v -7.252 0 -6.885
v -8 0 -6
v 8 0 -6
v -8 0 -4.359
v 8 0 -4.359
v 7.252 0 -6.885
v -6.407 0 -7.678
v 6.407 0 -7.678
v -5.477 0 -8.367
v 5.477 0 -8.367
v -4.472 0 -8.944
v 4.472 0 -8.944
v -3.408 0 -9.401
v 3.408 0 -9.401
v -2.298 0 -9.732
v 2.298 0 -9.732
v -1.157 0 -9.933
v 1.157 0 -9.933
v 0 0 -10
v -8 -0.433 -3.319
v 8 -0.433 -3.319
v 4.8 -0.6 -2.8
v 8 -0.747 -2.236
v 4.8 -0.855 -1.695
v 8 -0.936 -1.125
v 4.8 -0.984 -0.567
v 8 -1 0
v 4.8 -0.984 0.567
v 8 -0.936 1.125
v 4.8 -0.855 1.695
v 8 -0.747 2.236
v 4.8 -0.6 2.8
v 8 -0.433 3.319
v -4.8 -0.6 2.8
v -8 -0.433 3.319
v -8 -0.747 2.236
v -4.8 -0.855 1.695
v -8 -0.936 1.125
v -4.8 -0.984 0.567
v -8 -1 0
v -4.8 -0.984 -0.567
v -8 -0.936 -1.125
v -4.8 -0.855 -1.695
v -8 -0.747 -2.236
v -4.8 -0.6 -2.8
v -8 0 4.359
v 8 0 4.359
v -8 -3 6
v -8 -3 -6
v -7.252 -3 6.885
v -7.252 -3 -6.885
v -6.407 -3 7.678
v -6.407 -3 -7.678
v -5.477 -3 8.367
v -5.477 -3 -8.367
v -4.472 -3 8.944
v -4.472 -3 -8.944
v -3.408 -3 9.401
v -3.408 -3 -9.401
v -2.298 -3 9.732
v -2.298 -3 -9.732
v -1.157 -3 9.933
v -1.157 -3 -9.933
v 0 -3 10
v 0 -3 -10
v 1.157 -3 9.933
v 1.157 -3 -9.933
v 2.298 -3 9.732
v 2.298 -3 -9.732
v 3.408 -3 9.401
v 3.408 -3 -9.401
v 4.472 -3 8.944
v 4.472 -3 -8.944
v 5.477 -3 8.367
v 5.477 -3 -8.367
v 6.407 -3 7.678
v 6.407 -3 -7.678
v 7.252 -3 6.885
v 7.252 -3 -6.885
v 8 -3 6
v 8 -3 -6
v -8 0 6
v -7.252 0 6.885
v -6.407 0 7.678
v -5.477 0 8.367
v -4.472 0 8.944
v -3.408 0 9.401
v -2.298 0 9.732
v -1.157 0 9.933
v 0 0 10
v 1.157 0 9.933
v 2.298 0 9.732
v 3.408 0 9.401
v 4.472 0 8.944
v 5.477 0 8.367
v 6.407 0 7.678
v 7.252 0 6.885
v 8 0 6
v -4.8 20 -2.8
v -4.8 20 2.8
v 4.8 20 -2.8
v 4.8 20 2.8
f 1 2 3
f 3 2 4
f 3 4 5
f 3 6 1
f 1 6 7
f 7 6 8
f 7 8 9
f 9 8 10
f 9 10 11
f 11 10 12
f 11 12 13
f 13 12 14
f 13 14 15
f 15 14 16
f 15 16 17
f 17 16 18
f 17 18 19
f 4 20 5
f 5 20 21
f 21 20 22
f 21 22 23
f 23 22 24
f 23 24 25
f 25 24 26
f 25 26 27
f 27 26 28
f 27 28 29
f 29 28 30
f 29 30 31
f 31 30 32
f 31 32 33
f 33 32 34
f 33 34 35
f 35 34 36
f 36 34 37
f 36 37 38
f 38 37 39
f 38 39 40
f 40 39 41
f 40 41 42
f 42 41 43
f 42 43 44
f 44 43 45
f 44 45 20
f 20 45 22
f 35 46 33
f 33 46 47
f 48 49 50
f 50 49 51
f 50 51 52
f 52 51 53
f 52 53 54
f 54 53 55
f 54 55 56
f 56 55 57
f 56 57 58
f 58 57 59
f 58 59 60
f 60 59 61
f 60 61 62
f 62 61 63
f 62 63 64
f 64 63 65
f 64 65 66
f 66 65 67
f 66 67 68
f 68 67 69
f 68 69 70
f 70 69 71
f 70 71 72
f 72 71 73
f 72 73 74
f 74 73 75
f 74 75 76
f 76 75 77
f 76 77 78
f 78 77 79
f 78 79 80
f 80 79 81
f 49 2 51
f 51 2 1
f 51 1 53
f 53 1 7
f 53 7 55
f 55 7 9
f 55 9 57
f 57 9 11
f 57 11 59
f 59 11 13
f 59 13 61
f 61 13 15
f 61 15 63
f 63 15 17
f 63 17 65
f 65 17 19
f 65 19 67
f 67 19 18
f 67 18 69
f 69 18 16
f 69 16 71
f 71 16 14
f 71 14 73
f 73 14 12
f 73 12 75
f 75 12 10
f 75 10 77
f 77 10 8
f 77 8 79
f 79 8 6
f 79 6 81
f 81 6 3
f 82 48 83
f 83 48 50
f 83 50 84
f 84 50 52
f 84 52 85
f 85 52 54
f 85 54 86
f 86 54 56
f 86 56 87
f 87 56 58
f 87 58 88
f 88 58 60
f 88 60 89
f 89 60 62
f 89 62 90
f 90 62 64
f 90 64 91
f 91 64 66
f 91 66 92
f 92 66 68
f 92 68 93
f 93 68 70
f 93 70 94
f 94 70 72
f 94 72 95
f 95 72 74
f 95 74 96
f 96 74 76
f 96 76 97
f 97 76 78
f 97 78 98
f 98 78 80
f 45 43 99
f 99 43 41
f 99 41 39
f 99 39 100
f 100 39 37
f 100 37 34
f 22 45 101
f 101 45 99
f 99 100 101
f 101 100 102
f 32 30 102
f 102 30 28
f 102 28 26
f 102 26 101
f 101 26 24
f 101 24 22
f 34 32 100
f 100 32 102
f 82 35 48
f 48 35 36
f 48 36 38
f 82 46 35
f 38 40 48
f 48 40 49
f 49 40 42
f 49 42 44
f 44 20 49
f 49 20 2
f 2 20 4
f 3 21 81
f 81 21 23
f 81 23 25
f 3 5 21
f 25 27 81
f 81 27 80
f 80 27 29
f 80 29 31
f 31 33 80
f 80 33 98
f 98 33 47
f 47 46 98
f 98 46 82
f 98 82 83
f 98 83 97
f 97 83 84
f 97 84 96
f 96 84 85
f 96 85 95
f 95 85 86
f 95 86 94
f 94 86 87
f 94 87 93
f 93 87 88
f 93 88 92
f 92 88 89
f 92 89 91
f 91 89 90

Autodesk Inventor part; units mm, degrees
ref_plane "YZ Plane" through (0, 0, 0) normal (1, 0, 0) x (0, 1, 0)
ref_plane "XZ Plane" through (0, 0, 0) normal (0, 1, 0) x (-1, 0, 0)
ref_plane "XY Plane" through (0, 0, 0) normal (0, 0, 1) x (1, 0, 0)
sketch "Sketch1" plane through (0, 0, 0) normal (0, 1, 0) x (-1, 0, 0)
  line L0 (4.9, 2.9) -> (-4.9, 2.9)
  line L1 (-4.9, 2.9) -> (-4.9, -2.9)
  line L2 (-4.9, -2.9) -> (4.9, -2.9)
  line L3 (4.9, -2.9) -> (4.9, 2.9)
  point P0 (0, 0)
  dimension "d0" = 9.8
  dimension "d1" = 5.8
  dimension "d2" = 2.9
  dimension "d3" = 4.9
extrude "Extrusion1" add sketch "Sketch1" along normal blind 20
sketch "Sketch2" plane through (0, 0, 0) normal (0, -1, 0) x (1, 0, 0)
  circle A0 centre (0, 0) radius 10
  dimension "d6" = 20
extrude "Extrusion2" add sketch "Sketch2" along normal blind 3
sketch "Sketch3" plane through (0, 20, 0) normal (0, 1, 0) x (1, 0, 0)
  line L0 (-4.9, 2.9) -> (-4.9, -2.9) projected
  line L1 (-4.9, -2.9) -> (4.9, -2.9) projected
  line L2 (-4.9, 2.9) -> (4.9, 2.9)
  line L3 (4.9, 2.9) -> (4.9, -2.9)
  line L4 (4.9, -2.9) -> (-4.9, -2.9)
  line L5 (-4.9, -2.9) -> (-4.9, 2.9)
  point P0 (0, 0)
extrude "Extrusion3" cut sketch "Sketch3" against normal up to surface (20 mm away)
sketch "Sketch4" plane through (0, 0, 0) normal (1, 0, 0) x (0, 1, 0)
  circle A0 centre (9, 0) radius 10
  line L0 (-3, 10) -> (-3, -10) projected
  point P0 (0, 0)
  point P1 (-3, 0)
  dimension "d11" = 20
  dimension "d12" = 12
  dimension "d13" = 0
extrude "Extrusion4" cut sketch "Sketch4" along normal through all both and the other way through all
sketch "Sketch5" plane through (0, -3, 0) normal (0, -1, 0) x (1, 0, 0)
  line L0 (-4.8, 2.8) -> (4.8, 2.8)
  line L1 (4.8, 2.8) -> (4.8, -2.8)
  line L2 (4.8, -2.8) -> (-4.8, -2.8)
  line L3 (-4.8, -2.8) -> (-4.8, 2.8)
  point P0 (0, 0)
  dimension "d16" = 9.6
  dimension "d17" = 5.6
  dimension "d18" = 2.8
  dimension "d19" = 4.8
extrude "Extrusion5" add sketch "Sketch5" against normal blind 23
sketch "Sketch6" plane through (0, -3, 0) normal (0, -1, 0) x (1, 0, 0)
  line L0 (8, 10) -> (10, 10)
  line L1 (10, 10) -> (10, -10)
  line L2 (10, -10) -> (8, -10)
  line L3 (8, -10) -> (8, 10)
  line L4 (-10, 10) -> (-8, 10)
  line L5 (-8, 10) -> (-8, -10)
  line L6 (-8, -10) -> (-10, -10)
  line L7 (-10, -10) -> (-10, 10)
  circle A0 centre (0, 0) radius 10 projected
  point P0 (-9, -10)
  point P1 (-9, 10)
  dimension "d22" = 20
  dimension "d23" = 10
  dimension "d24" = 2
  dimension "d25" = 10
  dimension "d26" = 8
  dimension "d27" = 2
  dimension "d28" = 0
  dimension "d29" = 0
extrude "Extrusion6" cut sketch "Sketch6" against normal through all contours L0 L1 A0 L3 | A0 L3 | L1 L2 L3 A0 | A0 L7 L4 L5 | L5 A0 | L5 L6 L7 A0
equation "\"d2\" = 0.5 * d1"
equation "\"d3\" = 0.5 * d0"
equation "\"d18\" = 0.5 * d17"
equation "\"d19\" = 0.5 * d16"
properties part number "Pin"
